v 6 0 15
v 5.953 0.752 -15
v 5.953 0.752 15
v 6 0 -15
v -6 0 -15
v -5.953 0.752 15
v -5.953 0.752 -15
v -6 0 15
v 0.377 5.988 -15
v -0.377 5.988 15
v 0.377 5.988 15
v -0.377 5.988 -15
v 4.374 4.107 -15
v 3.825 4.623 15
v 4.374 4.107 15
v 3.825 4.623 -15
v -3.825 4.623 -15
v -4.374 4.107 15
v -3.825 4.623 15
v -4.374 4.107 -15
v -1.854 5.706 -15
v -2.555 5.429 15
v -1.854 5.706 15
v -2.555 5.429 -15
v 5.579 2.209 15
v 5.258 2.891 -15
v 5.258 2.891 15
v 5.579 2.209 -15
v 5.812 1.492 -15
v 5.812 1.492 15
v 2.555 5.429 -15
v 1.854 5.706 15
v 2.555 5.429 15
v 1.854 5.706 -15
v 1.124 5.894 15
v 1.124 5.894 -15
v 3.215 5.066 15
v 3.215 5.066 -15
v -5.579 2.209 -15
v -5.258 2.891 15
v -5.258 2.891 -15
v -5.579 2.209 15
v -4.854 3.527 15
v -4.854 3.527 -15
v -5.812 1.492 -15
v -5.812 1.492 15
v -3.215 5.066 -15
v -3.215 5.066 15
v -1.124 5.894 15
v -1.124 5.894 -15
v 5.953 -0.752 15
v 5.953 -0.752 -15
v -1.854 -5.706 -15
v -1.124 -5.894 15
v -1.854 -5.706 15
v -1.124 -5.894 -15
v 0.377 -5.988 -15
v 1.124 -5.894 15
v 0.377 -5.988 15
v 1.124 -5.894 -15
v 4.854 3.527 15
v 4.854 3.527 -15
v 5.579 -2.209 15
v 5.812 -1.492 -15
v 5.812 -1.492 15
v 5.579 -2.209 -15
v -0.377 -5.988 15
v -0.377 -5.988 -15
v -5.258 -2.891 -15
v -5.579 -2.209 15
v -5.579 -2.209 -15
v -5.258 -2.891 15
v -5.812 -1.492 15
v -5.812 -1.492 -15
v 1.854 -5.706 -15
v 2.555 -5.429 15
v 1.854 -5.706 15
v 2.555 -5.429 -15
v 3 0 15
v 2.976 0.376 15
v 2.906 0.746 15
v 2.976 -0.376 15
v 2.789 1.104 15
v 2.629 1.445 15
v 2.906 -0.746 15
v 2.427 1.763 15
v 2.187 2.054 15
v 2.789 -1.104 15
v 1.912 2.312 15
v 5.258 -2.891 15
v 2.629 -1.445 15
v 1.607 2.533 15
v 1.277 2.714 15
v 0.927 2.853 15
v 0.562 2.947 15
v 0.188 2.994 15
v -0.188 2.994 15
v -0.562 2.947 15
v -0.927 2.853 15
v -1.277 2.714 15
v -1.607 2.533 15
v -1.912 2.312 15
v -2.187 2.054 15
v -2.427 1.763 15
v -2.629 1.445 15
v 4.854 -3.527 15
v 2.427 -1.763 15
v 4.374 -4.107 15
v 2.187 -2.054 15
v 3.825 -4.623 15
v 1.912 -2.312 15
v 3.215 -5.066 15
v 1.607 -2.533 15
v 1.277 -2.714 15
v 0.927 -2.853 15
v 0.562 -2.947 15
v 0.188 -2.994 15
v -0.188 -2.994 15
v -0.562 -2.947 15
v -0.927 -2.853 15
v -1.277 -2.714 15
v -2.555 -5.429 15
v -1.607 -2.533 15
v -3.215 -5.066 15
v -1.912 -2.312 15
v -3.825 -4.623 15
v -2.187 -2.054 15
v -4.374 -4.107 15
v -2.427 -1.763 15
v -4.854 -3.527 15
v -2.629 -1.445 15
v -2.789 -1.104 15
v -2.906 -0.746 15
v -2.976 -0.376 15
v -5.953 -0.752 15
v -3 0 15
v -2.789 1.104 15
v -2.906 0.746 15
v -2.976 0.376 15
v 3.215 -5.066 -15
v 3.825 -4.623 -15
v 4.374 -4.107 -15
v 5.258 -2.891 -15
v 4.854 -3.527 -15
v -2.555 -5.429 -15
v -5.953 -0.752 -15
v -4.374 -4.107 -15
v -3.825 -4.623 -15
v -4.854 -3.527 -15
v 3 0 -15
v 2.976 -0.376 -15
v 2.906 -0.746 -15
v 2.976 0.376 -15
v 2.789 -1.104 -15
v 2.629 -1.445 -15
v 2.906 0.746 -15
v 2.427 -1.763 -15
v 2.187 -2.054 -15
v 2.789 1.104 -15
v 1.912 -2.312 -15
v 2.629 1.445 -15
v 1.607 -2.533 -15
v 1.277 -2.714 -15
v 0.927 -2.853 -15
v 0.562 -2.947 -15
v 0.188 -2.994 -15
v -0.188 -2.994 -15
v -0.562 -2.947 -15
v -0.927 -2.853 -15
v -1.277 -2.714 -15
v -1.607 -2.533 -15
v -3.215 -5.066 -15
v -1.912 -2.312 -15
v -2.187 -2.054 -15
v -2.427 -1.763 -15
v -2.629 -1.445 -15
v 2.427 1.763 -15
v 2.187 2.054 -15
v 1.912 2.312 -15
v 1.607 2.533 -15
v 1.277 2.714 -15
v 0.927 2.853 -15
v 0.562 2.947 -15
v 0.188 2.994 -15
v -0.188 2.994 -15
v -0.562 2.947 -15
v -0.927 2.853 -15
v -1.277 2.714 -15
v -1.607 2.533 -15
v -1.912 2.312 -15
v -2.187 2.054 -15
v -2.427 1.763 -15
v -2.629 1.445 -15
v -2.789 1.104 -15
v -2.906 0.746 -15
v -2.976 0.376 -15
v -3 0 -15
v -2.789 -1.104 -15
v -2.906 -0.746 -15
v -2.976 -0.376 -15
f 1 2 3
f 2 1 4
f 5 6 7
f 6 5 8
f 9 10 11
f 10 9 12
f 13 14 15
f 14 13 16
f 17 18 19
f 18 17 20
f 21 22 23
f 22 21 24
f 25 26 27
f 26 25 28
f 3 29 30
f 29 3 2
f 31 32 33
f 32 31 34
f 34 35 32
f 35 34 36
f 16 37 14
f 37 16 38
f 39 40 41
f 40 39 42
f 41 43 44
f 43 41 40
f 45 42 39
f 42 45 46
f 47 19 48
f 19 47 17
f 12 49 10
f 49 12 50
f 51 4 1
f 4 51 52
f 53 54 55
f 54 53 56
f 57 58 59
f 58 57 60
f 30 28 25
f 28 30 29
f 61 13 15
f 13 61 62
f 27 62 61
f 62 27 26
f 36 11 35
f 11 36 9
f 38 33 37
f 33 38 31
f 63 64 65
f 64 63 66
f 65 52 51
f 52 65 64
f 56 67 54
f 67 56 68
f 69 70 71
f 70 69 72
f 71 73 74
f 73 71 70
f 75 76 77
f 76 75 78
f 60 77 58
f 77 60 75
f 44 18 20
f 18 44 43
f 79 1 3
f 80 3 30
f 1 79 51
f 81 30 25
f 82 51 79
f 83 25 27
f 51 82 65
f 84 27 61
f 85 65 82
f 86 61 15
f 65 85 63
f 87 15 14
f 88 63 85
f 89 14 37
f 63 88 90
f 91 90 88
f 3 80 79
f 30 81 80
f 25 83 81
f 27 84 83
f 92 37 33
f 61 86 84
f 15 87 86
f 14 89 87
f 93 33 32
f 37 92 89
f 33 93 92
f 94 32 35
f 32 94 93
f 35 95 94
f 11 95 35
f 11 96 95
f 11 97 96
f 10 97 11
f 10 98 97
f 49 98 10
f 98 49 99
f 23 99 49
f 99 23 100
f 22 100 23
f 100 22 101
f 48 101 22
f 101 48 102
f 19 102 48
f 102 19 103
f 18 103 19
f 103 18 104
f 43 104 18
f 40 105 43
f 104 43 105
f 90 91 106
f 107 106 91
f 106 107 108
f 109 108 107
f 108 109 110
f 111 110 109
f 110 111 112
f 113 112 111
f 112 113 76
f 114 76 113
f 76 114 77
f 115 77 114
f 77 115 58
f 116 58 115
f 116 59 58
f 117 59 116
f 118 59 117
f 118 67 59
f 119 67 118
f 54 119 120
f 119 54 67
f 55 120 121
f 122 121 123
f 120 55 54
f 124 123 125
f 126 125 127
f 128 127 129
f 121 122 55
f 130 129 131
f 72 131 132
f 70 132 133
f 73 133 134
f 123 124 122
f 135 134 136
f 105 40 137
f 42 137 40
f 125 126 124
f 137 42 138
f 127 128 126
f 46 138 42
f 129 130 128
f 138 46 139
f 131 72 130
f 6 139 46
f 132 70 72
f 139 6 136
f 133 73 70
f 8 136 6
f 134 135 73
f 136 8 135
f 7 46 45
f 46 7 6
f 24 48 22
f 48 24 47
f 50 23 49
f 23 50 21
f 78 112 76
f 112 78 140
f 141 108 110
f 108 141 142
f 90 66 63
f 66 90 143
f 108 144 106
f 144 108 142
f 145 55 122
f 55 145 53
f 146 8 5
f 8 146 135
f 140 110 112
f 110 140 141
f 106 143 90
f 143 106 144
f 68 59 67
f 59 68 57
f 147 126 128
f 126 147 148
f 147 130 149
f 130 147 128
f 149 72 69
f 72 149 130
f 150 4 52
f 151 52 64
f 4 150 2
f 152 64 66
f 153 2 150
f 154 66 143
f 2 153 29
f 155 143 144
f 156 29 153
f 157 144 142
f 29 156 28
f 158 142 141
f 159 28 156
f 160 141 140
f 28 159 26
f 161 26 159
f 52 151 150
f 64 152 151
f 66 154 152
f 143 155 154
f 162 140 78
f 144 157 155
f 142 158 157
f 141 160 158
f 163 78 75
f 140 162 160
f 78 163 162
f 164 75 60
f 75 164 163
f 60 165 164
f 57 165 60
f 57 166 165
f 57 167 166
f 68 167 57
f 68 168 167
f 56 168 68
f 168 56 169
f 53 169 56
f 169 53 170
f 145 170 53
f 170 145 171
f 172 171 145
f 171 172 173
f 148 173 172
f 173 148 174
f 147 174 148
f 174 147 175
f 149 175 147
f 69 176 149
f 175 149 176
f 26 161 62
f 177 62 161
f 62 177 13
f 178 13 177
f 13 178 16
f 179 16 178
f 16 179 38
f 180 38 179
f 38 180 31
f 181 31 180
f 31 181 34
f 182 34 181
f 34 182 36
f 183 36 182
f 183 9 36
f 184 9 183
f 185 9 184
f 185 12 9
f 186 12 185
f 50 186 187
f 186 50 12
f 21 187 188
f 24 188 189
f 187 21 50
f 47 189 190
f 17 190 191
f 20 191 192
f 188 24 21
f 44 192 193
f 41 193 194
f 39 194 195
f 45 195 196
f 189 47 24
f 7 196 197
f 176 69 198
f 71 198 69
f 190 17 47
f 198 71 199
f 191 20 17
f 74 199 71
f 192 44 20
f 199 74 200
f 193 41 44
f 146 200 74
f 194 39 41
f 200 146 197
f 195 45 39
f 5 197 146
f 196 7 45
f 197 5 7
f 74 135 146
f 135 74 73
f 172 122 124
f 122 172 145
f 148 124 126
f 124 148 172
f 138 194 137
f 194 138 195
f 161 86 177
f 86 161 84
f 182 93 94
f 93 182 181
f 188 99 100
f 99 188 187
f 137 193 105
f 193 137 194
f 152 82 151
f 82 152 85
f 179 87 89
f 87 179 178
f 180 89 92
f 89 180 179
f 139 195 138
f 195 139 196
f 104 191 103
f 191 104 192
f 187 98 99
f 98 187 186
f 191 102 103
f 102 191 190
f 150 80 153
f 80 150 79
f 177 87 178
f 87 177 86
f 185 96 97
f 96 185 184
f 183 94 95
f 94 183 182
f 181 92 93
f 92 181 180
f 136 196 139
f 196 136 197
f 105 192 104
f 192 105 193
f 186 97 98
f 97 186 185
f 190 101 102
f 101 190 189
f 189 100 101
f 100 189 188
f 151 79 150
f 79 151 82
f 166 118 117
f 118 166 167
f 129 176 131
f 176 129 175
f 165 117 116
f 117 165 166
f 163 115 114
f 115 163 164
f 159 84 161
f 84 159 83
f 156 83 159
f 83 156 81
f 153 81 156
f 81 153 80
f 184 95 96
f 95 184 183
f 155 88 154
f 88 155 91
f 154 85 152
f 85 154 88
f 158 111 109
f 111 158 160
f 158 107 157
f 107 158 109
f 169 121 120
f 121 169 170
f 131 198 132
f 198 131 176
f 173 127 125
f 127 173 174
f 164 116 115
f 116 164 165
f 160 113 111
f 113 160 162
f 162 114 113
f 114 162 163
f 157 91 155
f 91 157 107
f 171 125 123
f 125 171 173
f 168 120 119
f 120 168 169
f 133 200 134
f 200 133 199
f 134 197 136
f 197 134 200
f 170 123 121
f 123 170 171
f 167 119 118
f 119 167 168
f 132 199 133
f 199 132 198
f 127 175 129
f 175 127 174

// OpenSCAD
$fn = 50;


difference() {
	union() {
		translate(v = [0, 0, -15.0000000000]) {
			cylinder(h = 30, r = 6.0000000000);
		}
	}
	union() {
		translate(v = [0, 0, -100.0000000000]) {
			cylinder(h = 200, r = 3.0000000000);
		}
	}
}
